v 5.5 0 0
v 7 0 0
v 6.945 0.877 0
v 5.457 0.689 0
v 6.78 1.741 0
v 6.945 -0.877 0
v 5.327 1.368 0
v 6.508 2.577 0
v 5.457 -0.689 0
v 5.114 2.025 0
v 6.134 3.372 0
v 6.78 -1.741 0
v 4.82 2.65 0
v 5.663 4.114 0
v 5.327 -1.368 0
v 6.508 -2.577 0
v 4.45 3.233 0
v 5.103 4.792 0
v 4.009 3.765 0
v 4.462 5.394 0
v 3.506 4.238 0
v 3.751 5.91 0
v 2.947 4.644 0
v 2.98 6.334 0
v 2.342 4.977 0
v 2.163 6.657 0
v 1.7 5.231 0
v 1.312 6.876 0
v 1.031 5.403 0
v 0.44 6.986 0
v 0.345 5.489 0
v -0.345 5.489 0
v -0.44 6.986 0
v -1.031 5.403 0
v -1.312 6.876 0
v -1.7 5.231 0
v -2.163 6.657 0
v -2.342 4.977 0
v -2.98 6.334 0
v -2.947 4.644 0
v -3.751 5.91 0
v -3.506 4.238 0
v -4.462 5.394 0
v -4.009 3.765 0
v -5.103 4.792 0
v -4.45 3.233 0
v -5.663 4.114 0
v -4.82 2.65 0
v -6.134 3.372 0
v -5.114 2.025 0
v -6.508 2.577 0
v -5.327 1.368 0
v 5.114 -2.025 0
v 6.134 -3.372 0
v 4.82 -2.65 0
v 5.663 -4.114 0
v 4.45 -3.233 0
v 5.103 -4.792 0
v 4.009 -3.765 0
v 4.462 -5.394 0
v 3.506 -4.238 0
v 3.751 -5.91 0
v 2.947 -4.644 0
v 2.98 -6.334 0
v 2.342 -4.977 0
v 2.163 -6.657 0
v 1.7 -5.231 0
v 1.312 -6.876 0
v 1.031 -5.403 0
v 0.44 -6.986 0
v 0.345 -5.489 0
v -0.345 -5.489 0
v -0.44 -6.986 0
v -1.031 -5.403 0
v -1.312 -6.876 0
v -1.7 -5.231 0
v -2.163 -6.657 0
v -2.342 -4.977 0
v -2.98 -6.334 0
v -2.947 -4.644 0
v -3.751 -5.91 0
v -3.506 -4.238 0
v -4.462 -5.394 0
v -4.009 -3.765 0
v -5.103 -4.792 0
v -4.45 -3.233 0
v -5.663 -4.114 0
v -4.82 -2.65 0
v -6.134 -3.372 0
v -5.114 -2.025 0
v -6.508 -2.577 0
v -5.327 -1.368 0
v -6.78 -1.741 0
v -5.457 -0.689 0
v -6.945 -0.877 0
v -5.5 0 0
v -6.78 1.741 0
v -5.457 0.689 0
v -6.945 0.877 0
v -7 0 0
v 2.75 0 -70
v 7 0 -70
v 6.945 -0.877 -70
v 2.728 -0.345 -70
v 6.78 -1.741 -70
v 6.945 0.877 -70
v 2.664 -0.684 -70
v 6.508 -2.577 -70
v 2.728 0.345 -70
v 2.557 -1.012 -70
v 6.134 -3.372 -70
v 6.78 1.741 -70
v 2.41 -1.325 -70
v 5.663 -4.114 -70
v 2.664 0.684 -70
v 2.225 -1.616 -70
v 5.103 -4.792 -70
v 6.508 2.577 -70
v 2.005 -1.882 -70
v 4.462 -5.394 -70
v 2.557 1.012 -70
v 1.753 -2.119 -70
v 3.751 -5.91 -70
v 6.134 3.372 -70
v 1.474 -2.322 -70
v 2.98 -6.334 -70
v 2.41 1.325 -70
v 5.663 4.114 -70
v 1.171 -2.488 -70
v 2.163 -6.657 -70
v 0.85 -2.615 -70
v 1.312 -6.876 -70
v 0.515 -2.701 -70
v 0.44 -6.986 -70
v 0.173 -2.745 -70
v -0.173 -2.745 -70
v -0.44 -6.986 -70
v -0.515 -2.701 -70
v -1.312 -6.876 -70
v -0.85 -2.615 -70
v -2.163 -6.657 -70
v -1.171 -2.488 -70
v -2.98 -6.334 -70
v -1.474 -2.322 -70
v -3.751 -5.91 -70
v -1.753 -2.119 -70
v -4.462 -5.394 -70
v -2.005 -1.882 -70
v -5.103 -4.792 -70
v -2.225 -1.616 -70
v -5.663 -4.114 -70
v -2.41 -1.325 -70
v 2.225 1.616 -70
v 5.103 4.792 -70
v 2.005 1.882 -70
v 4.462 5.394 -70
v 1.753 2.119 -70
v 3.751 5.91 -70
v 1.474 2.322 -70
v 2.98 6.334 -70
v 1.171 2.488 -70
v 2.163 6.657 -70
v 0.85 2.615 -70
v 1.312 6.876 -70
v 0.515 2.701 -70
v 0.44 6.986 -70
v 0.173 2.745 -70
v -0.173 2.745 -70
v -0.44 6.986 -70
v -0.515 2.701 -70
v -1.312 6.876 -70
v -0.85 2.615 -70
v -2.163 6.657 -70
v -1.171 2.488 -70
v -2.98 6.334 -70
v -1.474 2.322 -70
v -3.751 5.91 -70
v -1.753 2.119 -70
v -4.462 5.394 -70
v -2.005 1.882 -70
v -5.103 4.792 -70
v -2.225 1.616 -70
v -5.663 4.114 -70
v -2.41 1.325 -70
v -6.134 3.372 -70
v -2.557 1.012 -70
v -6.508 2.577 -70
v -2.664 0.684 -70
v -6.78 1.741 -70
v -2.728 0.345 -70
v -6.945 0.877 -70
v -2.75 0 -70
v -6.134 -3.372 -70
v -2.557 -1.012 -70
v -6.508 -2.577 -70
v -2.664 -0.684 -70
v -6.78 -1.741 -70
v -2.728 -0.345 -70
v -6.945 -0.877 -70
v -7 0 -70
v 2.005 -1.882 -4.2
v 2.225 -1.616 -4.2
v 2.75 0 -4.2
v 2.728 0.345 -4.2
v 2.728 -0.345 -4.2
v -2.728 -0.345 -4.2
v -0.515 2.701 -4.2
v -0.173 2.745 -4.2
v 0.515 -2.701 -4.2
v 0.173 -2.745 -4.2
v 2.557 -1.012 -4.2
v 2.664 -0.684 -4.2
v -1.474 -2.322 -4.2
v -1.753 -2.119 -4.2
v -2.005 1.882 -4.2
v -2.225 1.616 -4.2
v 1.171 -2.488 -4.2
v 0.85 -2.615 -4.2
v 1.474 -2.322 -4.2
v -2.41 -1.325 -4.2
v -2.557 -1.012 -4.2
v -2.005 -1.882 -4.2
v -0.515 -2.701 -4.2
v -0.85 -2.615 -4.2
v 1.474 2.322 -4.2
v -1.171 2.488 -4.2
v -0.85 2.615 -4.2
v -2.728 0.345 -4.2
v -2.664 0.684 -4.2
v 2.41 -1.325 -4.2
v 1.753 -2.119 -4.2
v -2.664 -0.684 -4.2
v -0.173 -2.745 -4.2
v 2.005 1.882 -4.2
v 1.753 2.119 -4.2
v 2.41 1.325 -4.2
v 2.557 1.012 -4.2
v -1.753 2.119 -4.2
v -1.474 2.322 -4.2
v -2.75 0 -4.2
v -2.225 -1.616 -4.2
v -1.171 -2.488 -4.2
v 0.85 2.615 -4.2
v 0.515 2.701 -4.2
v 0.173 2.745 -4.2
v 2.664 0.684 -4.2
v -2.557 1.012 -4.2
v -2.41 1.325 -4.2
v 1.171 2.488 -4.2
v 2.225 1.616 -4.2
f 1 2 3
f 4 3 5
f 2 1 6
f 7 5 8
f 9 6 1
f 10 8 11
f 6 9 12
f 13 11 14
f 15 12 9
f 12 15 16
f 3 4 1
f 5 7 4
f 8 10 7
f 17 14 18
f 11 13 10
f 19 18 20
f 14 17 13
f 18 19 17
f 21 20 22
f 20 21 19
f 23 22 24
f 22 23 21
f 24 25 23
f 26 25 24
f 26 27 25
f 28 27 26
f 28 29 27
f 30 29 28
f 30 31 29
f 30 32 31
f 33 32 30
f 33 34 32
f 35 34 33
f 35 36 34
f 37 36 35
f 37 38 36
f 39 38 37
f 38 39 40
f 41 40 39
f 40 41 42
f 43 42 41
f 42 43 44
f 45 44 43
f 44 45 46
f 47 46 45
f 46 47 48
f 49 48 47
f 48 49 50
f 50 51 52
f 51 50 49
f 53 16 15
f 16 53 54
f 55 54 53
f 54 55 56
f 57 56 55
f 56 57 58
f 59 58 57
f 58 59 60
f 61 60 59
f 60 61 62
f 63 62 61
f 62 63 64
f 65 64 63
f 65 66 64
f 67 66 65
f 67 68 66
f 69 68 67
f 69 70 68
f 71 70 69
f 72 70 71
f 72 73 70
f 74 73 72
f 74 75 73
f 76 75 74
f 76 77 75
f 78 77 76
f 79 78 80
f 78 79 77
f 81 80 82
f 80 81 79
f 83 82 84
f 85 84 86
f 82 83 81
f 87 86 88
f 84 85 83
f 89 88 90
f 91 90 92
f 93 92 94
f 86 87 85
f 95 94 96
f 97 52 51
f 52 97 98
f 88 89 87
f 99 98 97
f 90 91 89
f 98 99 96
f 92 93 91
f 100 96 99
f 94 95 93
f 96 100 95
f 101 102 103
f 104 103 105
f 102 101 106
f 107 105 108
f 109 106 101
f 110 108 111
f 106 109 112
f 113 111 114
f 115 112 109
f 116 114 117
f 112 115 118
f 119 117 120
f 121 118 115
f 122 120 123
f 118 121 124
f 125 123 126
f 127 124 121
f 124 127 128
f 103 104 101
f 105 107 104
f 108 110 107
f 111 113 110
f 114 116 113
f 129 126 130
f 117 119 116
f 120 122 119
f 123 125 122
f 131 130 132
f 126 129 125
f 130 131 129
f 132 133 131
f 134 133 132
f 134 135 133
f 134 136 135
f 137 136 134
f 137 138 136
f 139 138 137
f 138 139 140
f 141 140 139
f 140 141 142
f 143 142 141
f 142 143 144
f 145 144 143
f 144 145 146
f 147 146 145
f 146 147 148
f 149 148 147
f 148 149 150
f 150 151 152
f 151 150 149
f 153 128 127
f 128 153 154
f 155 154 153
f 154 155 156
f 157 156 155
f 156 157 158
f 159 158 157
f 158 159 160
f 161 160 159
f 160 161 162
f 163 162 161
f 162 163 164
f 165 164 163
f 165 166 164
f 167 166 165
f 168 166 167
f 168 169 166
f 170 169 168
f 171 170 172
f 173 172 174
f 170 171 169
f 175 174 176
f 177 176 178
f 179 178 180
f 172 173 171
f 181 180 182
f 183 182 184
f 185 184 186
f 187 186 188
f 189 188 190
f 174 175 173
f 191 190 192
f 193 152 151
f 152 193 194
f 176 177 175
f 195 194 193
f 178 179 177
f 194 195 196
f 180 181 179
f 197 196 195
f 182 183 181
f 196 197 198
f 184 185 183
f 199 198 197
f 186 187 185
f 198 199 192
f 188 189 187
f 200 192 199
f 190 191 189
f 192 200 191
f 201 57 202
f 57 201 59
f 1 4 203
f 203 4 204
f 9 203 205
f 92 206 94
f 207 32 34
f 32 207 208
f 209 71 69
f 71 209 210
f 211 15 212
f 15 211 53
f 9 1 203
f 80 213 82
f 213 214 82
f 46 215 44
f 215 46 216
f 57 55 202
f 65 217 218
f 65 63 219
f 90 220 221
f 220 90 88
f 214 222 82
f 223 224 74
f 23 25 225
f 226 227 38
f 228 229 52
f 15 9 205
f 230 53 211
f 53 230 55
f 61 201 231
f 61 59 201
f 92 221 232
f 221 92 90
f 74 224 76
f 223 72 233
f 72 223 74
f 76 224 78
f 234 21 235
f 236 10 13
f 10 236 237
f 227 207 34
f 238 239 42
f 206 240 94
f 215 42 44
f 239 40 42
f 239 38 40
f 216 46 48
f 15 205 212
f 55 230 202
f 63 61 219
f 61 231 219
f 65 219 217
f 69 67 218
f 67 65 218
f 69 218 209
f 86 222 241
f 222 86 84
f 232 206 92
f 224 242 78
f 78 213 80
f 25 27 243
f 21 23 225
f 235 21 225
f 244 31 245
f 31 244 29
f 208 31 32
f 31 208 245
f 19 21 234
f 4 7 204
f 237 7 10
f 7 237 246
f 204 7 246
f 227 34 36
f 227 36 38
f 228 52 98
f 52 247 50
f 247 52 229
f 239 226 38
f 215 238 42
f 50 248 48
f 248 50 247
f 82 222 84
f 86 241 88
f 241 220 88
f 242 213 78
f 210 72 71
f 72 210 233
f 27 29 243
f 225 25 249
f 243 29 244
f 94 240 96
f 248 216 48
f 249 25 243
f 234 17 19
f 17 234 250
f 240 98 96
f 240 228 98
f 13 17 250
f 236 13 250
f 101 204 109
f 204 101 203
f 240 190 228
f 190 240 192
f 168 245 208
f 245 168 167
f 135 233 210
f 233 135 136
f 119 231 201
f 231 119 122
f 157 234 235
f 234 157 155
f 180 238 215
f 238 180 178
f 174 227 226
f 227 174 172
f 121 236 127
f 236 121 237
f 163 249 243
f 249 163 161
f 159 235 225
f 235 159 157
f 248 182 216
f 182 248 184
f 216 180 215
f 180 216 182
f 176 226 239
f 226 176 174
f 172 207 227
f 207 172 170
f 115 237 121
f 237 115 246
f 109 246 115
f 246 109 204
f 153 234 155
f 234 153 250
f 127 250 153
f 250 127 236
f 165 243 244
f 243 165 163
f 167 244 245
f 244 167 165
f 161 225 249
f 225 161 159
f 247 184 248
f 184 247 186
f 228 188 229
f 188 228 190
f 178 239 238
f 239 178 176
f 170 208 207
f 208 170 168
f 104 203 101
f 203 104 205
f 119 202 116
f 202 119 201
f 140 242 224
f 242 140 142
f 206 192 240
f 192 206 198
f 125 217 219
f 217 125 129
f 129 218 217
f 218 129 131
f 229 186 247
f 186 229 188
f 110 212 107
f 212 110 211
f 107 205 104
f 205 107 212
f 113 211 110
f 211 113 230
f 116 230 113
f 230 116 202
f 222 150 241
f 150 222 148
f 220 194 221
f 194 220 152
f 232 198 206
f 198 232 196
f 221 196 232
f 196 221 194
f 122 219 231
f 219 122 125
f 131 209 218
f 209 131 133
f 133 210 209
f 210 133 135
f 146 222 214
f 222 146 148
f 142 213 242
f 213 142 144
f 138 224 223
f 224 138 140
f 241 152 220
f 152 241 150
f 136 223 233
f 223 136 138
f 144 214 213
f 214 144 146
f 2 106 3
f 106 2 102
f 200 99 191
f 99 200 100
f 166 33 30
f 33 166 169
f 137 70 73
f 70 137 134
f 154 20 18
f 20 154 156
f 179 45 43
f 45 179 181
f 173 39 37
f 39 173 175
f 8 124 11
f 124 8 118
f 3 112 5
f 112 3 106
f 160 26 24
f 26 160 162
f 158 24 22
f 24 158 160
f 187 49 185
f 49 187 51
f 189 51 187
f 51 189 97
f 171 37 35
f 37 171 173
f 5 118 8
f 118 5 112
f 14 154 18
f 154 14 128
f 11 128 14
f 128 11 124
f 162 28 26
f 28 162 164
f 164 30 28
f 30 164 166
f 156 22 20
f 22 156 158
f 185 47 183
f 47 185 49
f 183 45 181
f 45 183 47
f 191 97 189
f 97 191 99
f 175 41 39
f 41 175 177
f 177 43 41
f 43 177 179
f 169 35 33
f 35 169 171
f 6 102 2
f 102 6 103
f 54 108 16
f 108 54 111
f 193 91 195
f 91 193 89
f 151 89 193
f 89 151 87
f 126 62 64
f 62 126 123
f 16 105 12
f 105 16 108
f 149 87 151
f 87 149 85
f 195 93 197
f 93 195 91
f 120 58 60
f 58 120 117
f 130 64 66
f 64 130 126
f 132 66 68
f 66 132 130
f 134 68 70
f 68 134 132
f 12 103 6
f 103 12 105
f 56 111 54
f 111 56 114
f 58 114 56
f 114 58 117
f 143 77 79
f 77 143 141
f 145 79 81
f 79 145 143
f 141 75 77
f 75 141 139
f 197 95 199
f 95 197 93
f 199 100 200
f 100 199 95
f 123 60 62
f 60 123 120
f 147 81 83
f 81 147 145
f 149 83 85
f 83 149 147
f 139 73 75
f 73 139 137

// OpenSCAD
$fn = 50;


difference() {
	union() {
		translate(v = [0, 0, -70.0000000000]) {
			cylinder(h = 70, r = 7.0000000000);
		}
		cylinder(h = 0, r = 10.0000000000);
	}
	union() {
		translate(v = [0, 0, 0]) {
			rotate(a = [0, 0, 0]) {
				difference() {
					union() {
						#translate(v = [0, 0, -70.0000000000]) {
							cylinder(h = 70, r = 2.2500000000);
						}
						#translate(v = [0, 0, -4.2000000000]) {
							cylinder(h = 4.2000000000, r1 = 2.7500000000, r2 = 5.5000000000);
						}
						#translate(v = [0, 0, -70.0000000000]) {
							cylinder(h = 70, r = 2.7500000000);
						}
						#translate(v = [0, 0, -70.0000000000]) {
							cylinder(h = 70, r = 2.2500000000);
						}
					}
					union();
				}
			}
		}
	}
}
